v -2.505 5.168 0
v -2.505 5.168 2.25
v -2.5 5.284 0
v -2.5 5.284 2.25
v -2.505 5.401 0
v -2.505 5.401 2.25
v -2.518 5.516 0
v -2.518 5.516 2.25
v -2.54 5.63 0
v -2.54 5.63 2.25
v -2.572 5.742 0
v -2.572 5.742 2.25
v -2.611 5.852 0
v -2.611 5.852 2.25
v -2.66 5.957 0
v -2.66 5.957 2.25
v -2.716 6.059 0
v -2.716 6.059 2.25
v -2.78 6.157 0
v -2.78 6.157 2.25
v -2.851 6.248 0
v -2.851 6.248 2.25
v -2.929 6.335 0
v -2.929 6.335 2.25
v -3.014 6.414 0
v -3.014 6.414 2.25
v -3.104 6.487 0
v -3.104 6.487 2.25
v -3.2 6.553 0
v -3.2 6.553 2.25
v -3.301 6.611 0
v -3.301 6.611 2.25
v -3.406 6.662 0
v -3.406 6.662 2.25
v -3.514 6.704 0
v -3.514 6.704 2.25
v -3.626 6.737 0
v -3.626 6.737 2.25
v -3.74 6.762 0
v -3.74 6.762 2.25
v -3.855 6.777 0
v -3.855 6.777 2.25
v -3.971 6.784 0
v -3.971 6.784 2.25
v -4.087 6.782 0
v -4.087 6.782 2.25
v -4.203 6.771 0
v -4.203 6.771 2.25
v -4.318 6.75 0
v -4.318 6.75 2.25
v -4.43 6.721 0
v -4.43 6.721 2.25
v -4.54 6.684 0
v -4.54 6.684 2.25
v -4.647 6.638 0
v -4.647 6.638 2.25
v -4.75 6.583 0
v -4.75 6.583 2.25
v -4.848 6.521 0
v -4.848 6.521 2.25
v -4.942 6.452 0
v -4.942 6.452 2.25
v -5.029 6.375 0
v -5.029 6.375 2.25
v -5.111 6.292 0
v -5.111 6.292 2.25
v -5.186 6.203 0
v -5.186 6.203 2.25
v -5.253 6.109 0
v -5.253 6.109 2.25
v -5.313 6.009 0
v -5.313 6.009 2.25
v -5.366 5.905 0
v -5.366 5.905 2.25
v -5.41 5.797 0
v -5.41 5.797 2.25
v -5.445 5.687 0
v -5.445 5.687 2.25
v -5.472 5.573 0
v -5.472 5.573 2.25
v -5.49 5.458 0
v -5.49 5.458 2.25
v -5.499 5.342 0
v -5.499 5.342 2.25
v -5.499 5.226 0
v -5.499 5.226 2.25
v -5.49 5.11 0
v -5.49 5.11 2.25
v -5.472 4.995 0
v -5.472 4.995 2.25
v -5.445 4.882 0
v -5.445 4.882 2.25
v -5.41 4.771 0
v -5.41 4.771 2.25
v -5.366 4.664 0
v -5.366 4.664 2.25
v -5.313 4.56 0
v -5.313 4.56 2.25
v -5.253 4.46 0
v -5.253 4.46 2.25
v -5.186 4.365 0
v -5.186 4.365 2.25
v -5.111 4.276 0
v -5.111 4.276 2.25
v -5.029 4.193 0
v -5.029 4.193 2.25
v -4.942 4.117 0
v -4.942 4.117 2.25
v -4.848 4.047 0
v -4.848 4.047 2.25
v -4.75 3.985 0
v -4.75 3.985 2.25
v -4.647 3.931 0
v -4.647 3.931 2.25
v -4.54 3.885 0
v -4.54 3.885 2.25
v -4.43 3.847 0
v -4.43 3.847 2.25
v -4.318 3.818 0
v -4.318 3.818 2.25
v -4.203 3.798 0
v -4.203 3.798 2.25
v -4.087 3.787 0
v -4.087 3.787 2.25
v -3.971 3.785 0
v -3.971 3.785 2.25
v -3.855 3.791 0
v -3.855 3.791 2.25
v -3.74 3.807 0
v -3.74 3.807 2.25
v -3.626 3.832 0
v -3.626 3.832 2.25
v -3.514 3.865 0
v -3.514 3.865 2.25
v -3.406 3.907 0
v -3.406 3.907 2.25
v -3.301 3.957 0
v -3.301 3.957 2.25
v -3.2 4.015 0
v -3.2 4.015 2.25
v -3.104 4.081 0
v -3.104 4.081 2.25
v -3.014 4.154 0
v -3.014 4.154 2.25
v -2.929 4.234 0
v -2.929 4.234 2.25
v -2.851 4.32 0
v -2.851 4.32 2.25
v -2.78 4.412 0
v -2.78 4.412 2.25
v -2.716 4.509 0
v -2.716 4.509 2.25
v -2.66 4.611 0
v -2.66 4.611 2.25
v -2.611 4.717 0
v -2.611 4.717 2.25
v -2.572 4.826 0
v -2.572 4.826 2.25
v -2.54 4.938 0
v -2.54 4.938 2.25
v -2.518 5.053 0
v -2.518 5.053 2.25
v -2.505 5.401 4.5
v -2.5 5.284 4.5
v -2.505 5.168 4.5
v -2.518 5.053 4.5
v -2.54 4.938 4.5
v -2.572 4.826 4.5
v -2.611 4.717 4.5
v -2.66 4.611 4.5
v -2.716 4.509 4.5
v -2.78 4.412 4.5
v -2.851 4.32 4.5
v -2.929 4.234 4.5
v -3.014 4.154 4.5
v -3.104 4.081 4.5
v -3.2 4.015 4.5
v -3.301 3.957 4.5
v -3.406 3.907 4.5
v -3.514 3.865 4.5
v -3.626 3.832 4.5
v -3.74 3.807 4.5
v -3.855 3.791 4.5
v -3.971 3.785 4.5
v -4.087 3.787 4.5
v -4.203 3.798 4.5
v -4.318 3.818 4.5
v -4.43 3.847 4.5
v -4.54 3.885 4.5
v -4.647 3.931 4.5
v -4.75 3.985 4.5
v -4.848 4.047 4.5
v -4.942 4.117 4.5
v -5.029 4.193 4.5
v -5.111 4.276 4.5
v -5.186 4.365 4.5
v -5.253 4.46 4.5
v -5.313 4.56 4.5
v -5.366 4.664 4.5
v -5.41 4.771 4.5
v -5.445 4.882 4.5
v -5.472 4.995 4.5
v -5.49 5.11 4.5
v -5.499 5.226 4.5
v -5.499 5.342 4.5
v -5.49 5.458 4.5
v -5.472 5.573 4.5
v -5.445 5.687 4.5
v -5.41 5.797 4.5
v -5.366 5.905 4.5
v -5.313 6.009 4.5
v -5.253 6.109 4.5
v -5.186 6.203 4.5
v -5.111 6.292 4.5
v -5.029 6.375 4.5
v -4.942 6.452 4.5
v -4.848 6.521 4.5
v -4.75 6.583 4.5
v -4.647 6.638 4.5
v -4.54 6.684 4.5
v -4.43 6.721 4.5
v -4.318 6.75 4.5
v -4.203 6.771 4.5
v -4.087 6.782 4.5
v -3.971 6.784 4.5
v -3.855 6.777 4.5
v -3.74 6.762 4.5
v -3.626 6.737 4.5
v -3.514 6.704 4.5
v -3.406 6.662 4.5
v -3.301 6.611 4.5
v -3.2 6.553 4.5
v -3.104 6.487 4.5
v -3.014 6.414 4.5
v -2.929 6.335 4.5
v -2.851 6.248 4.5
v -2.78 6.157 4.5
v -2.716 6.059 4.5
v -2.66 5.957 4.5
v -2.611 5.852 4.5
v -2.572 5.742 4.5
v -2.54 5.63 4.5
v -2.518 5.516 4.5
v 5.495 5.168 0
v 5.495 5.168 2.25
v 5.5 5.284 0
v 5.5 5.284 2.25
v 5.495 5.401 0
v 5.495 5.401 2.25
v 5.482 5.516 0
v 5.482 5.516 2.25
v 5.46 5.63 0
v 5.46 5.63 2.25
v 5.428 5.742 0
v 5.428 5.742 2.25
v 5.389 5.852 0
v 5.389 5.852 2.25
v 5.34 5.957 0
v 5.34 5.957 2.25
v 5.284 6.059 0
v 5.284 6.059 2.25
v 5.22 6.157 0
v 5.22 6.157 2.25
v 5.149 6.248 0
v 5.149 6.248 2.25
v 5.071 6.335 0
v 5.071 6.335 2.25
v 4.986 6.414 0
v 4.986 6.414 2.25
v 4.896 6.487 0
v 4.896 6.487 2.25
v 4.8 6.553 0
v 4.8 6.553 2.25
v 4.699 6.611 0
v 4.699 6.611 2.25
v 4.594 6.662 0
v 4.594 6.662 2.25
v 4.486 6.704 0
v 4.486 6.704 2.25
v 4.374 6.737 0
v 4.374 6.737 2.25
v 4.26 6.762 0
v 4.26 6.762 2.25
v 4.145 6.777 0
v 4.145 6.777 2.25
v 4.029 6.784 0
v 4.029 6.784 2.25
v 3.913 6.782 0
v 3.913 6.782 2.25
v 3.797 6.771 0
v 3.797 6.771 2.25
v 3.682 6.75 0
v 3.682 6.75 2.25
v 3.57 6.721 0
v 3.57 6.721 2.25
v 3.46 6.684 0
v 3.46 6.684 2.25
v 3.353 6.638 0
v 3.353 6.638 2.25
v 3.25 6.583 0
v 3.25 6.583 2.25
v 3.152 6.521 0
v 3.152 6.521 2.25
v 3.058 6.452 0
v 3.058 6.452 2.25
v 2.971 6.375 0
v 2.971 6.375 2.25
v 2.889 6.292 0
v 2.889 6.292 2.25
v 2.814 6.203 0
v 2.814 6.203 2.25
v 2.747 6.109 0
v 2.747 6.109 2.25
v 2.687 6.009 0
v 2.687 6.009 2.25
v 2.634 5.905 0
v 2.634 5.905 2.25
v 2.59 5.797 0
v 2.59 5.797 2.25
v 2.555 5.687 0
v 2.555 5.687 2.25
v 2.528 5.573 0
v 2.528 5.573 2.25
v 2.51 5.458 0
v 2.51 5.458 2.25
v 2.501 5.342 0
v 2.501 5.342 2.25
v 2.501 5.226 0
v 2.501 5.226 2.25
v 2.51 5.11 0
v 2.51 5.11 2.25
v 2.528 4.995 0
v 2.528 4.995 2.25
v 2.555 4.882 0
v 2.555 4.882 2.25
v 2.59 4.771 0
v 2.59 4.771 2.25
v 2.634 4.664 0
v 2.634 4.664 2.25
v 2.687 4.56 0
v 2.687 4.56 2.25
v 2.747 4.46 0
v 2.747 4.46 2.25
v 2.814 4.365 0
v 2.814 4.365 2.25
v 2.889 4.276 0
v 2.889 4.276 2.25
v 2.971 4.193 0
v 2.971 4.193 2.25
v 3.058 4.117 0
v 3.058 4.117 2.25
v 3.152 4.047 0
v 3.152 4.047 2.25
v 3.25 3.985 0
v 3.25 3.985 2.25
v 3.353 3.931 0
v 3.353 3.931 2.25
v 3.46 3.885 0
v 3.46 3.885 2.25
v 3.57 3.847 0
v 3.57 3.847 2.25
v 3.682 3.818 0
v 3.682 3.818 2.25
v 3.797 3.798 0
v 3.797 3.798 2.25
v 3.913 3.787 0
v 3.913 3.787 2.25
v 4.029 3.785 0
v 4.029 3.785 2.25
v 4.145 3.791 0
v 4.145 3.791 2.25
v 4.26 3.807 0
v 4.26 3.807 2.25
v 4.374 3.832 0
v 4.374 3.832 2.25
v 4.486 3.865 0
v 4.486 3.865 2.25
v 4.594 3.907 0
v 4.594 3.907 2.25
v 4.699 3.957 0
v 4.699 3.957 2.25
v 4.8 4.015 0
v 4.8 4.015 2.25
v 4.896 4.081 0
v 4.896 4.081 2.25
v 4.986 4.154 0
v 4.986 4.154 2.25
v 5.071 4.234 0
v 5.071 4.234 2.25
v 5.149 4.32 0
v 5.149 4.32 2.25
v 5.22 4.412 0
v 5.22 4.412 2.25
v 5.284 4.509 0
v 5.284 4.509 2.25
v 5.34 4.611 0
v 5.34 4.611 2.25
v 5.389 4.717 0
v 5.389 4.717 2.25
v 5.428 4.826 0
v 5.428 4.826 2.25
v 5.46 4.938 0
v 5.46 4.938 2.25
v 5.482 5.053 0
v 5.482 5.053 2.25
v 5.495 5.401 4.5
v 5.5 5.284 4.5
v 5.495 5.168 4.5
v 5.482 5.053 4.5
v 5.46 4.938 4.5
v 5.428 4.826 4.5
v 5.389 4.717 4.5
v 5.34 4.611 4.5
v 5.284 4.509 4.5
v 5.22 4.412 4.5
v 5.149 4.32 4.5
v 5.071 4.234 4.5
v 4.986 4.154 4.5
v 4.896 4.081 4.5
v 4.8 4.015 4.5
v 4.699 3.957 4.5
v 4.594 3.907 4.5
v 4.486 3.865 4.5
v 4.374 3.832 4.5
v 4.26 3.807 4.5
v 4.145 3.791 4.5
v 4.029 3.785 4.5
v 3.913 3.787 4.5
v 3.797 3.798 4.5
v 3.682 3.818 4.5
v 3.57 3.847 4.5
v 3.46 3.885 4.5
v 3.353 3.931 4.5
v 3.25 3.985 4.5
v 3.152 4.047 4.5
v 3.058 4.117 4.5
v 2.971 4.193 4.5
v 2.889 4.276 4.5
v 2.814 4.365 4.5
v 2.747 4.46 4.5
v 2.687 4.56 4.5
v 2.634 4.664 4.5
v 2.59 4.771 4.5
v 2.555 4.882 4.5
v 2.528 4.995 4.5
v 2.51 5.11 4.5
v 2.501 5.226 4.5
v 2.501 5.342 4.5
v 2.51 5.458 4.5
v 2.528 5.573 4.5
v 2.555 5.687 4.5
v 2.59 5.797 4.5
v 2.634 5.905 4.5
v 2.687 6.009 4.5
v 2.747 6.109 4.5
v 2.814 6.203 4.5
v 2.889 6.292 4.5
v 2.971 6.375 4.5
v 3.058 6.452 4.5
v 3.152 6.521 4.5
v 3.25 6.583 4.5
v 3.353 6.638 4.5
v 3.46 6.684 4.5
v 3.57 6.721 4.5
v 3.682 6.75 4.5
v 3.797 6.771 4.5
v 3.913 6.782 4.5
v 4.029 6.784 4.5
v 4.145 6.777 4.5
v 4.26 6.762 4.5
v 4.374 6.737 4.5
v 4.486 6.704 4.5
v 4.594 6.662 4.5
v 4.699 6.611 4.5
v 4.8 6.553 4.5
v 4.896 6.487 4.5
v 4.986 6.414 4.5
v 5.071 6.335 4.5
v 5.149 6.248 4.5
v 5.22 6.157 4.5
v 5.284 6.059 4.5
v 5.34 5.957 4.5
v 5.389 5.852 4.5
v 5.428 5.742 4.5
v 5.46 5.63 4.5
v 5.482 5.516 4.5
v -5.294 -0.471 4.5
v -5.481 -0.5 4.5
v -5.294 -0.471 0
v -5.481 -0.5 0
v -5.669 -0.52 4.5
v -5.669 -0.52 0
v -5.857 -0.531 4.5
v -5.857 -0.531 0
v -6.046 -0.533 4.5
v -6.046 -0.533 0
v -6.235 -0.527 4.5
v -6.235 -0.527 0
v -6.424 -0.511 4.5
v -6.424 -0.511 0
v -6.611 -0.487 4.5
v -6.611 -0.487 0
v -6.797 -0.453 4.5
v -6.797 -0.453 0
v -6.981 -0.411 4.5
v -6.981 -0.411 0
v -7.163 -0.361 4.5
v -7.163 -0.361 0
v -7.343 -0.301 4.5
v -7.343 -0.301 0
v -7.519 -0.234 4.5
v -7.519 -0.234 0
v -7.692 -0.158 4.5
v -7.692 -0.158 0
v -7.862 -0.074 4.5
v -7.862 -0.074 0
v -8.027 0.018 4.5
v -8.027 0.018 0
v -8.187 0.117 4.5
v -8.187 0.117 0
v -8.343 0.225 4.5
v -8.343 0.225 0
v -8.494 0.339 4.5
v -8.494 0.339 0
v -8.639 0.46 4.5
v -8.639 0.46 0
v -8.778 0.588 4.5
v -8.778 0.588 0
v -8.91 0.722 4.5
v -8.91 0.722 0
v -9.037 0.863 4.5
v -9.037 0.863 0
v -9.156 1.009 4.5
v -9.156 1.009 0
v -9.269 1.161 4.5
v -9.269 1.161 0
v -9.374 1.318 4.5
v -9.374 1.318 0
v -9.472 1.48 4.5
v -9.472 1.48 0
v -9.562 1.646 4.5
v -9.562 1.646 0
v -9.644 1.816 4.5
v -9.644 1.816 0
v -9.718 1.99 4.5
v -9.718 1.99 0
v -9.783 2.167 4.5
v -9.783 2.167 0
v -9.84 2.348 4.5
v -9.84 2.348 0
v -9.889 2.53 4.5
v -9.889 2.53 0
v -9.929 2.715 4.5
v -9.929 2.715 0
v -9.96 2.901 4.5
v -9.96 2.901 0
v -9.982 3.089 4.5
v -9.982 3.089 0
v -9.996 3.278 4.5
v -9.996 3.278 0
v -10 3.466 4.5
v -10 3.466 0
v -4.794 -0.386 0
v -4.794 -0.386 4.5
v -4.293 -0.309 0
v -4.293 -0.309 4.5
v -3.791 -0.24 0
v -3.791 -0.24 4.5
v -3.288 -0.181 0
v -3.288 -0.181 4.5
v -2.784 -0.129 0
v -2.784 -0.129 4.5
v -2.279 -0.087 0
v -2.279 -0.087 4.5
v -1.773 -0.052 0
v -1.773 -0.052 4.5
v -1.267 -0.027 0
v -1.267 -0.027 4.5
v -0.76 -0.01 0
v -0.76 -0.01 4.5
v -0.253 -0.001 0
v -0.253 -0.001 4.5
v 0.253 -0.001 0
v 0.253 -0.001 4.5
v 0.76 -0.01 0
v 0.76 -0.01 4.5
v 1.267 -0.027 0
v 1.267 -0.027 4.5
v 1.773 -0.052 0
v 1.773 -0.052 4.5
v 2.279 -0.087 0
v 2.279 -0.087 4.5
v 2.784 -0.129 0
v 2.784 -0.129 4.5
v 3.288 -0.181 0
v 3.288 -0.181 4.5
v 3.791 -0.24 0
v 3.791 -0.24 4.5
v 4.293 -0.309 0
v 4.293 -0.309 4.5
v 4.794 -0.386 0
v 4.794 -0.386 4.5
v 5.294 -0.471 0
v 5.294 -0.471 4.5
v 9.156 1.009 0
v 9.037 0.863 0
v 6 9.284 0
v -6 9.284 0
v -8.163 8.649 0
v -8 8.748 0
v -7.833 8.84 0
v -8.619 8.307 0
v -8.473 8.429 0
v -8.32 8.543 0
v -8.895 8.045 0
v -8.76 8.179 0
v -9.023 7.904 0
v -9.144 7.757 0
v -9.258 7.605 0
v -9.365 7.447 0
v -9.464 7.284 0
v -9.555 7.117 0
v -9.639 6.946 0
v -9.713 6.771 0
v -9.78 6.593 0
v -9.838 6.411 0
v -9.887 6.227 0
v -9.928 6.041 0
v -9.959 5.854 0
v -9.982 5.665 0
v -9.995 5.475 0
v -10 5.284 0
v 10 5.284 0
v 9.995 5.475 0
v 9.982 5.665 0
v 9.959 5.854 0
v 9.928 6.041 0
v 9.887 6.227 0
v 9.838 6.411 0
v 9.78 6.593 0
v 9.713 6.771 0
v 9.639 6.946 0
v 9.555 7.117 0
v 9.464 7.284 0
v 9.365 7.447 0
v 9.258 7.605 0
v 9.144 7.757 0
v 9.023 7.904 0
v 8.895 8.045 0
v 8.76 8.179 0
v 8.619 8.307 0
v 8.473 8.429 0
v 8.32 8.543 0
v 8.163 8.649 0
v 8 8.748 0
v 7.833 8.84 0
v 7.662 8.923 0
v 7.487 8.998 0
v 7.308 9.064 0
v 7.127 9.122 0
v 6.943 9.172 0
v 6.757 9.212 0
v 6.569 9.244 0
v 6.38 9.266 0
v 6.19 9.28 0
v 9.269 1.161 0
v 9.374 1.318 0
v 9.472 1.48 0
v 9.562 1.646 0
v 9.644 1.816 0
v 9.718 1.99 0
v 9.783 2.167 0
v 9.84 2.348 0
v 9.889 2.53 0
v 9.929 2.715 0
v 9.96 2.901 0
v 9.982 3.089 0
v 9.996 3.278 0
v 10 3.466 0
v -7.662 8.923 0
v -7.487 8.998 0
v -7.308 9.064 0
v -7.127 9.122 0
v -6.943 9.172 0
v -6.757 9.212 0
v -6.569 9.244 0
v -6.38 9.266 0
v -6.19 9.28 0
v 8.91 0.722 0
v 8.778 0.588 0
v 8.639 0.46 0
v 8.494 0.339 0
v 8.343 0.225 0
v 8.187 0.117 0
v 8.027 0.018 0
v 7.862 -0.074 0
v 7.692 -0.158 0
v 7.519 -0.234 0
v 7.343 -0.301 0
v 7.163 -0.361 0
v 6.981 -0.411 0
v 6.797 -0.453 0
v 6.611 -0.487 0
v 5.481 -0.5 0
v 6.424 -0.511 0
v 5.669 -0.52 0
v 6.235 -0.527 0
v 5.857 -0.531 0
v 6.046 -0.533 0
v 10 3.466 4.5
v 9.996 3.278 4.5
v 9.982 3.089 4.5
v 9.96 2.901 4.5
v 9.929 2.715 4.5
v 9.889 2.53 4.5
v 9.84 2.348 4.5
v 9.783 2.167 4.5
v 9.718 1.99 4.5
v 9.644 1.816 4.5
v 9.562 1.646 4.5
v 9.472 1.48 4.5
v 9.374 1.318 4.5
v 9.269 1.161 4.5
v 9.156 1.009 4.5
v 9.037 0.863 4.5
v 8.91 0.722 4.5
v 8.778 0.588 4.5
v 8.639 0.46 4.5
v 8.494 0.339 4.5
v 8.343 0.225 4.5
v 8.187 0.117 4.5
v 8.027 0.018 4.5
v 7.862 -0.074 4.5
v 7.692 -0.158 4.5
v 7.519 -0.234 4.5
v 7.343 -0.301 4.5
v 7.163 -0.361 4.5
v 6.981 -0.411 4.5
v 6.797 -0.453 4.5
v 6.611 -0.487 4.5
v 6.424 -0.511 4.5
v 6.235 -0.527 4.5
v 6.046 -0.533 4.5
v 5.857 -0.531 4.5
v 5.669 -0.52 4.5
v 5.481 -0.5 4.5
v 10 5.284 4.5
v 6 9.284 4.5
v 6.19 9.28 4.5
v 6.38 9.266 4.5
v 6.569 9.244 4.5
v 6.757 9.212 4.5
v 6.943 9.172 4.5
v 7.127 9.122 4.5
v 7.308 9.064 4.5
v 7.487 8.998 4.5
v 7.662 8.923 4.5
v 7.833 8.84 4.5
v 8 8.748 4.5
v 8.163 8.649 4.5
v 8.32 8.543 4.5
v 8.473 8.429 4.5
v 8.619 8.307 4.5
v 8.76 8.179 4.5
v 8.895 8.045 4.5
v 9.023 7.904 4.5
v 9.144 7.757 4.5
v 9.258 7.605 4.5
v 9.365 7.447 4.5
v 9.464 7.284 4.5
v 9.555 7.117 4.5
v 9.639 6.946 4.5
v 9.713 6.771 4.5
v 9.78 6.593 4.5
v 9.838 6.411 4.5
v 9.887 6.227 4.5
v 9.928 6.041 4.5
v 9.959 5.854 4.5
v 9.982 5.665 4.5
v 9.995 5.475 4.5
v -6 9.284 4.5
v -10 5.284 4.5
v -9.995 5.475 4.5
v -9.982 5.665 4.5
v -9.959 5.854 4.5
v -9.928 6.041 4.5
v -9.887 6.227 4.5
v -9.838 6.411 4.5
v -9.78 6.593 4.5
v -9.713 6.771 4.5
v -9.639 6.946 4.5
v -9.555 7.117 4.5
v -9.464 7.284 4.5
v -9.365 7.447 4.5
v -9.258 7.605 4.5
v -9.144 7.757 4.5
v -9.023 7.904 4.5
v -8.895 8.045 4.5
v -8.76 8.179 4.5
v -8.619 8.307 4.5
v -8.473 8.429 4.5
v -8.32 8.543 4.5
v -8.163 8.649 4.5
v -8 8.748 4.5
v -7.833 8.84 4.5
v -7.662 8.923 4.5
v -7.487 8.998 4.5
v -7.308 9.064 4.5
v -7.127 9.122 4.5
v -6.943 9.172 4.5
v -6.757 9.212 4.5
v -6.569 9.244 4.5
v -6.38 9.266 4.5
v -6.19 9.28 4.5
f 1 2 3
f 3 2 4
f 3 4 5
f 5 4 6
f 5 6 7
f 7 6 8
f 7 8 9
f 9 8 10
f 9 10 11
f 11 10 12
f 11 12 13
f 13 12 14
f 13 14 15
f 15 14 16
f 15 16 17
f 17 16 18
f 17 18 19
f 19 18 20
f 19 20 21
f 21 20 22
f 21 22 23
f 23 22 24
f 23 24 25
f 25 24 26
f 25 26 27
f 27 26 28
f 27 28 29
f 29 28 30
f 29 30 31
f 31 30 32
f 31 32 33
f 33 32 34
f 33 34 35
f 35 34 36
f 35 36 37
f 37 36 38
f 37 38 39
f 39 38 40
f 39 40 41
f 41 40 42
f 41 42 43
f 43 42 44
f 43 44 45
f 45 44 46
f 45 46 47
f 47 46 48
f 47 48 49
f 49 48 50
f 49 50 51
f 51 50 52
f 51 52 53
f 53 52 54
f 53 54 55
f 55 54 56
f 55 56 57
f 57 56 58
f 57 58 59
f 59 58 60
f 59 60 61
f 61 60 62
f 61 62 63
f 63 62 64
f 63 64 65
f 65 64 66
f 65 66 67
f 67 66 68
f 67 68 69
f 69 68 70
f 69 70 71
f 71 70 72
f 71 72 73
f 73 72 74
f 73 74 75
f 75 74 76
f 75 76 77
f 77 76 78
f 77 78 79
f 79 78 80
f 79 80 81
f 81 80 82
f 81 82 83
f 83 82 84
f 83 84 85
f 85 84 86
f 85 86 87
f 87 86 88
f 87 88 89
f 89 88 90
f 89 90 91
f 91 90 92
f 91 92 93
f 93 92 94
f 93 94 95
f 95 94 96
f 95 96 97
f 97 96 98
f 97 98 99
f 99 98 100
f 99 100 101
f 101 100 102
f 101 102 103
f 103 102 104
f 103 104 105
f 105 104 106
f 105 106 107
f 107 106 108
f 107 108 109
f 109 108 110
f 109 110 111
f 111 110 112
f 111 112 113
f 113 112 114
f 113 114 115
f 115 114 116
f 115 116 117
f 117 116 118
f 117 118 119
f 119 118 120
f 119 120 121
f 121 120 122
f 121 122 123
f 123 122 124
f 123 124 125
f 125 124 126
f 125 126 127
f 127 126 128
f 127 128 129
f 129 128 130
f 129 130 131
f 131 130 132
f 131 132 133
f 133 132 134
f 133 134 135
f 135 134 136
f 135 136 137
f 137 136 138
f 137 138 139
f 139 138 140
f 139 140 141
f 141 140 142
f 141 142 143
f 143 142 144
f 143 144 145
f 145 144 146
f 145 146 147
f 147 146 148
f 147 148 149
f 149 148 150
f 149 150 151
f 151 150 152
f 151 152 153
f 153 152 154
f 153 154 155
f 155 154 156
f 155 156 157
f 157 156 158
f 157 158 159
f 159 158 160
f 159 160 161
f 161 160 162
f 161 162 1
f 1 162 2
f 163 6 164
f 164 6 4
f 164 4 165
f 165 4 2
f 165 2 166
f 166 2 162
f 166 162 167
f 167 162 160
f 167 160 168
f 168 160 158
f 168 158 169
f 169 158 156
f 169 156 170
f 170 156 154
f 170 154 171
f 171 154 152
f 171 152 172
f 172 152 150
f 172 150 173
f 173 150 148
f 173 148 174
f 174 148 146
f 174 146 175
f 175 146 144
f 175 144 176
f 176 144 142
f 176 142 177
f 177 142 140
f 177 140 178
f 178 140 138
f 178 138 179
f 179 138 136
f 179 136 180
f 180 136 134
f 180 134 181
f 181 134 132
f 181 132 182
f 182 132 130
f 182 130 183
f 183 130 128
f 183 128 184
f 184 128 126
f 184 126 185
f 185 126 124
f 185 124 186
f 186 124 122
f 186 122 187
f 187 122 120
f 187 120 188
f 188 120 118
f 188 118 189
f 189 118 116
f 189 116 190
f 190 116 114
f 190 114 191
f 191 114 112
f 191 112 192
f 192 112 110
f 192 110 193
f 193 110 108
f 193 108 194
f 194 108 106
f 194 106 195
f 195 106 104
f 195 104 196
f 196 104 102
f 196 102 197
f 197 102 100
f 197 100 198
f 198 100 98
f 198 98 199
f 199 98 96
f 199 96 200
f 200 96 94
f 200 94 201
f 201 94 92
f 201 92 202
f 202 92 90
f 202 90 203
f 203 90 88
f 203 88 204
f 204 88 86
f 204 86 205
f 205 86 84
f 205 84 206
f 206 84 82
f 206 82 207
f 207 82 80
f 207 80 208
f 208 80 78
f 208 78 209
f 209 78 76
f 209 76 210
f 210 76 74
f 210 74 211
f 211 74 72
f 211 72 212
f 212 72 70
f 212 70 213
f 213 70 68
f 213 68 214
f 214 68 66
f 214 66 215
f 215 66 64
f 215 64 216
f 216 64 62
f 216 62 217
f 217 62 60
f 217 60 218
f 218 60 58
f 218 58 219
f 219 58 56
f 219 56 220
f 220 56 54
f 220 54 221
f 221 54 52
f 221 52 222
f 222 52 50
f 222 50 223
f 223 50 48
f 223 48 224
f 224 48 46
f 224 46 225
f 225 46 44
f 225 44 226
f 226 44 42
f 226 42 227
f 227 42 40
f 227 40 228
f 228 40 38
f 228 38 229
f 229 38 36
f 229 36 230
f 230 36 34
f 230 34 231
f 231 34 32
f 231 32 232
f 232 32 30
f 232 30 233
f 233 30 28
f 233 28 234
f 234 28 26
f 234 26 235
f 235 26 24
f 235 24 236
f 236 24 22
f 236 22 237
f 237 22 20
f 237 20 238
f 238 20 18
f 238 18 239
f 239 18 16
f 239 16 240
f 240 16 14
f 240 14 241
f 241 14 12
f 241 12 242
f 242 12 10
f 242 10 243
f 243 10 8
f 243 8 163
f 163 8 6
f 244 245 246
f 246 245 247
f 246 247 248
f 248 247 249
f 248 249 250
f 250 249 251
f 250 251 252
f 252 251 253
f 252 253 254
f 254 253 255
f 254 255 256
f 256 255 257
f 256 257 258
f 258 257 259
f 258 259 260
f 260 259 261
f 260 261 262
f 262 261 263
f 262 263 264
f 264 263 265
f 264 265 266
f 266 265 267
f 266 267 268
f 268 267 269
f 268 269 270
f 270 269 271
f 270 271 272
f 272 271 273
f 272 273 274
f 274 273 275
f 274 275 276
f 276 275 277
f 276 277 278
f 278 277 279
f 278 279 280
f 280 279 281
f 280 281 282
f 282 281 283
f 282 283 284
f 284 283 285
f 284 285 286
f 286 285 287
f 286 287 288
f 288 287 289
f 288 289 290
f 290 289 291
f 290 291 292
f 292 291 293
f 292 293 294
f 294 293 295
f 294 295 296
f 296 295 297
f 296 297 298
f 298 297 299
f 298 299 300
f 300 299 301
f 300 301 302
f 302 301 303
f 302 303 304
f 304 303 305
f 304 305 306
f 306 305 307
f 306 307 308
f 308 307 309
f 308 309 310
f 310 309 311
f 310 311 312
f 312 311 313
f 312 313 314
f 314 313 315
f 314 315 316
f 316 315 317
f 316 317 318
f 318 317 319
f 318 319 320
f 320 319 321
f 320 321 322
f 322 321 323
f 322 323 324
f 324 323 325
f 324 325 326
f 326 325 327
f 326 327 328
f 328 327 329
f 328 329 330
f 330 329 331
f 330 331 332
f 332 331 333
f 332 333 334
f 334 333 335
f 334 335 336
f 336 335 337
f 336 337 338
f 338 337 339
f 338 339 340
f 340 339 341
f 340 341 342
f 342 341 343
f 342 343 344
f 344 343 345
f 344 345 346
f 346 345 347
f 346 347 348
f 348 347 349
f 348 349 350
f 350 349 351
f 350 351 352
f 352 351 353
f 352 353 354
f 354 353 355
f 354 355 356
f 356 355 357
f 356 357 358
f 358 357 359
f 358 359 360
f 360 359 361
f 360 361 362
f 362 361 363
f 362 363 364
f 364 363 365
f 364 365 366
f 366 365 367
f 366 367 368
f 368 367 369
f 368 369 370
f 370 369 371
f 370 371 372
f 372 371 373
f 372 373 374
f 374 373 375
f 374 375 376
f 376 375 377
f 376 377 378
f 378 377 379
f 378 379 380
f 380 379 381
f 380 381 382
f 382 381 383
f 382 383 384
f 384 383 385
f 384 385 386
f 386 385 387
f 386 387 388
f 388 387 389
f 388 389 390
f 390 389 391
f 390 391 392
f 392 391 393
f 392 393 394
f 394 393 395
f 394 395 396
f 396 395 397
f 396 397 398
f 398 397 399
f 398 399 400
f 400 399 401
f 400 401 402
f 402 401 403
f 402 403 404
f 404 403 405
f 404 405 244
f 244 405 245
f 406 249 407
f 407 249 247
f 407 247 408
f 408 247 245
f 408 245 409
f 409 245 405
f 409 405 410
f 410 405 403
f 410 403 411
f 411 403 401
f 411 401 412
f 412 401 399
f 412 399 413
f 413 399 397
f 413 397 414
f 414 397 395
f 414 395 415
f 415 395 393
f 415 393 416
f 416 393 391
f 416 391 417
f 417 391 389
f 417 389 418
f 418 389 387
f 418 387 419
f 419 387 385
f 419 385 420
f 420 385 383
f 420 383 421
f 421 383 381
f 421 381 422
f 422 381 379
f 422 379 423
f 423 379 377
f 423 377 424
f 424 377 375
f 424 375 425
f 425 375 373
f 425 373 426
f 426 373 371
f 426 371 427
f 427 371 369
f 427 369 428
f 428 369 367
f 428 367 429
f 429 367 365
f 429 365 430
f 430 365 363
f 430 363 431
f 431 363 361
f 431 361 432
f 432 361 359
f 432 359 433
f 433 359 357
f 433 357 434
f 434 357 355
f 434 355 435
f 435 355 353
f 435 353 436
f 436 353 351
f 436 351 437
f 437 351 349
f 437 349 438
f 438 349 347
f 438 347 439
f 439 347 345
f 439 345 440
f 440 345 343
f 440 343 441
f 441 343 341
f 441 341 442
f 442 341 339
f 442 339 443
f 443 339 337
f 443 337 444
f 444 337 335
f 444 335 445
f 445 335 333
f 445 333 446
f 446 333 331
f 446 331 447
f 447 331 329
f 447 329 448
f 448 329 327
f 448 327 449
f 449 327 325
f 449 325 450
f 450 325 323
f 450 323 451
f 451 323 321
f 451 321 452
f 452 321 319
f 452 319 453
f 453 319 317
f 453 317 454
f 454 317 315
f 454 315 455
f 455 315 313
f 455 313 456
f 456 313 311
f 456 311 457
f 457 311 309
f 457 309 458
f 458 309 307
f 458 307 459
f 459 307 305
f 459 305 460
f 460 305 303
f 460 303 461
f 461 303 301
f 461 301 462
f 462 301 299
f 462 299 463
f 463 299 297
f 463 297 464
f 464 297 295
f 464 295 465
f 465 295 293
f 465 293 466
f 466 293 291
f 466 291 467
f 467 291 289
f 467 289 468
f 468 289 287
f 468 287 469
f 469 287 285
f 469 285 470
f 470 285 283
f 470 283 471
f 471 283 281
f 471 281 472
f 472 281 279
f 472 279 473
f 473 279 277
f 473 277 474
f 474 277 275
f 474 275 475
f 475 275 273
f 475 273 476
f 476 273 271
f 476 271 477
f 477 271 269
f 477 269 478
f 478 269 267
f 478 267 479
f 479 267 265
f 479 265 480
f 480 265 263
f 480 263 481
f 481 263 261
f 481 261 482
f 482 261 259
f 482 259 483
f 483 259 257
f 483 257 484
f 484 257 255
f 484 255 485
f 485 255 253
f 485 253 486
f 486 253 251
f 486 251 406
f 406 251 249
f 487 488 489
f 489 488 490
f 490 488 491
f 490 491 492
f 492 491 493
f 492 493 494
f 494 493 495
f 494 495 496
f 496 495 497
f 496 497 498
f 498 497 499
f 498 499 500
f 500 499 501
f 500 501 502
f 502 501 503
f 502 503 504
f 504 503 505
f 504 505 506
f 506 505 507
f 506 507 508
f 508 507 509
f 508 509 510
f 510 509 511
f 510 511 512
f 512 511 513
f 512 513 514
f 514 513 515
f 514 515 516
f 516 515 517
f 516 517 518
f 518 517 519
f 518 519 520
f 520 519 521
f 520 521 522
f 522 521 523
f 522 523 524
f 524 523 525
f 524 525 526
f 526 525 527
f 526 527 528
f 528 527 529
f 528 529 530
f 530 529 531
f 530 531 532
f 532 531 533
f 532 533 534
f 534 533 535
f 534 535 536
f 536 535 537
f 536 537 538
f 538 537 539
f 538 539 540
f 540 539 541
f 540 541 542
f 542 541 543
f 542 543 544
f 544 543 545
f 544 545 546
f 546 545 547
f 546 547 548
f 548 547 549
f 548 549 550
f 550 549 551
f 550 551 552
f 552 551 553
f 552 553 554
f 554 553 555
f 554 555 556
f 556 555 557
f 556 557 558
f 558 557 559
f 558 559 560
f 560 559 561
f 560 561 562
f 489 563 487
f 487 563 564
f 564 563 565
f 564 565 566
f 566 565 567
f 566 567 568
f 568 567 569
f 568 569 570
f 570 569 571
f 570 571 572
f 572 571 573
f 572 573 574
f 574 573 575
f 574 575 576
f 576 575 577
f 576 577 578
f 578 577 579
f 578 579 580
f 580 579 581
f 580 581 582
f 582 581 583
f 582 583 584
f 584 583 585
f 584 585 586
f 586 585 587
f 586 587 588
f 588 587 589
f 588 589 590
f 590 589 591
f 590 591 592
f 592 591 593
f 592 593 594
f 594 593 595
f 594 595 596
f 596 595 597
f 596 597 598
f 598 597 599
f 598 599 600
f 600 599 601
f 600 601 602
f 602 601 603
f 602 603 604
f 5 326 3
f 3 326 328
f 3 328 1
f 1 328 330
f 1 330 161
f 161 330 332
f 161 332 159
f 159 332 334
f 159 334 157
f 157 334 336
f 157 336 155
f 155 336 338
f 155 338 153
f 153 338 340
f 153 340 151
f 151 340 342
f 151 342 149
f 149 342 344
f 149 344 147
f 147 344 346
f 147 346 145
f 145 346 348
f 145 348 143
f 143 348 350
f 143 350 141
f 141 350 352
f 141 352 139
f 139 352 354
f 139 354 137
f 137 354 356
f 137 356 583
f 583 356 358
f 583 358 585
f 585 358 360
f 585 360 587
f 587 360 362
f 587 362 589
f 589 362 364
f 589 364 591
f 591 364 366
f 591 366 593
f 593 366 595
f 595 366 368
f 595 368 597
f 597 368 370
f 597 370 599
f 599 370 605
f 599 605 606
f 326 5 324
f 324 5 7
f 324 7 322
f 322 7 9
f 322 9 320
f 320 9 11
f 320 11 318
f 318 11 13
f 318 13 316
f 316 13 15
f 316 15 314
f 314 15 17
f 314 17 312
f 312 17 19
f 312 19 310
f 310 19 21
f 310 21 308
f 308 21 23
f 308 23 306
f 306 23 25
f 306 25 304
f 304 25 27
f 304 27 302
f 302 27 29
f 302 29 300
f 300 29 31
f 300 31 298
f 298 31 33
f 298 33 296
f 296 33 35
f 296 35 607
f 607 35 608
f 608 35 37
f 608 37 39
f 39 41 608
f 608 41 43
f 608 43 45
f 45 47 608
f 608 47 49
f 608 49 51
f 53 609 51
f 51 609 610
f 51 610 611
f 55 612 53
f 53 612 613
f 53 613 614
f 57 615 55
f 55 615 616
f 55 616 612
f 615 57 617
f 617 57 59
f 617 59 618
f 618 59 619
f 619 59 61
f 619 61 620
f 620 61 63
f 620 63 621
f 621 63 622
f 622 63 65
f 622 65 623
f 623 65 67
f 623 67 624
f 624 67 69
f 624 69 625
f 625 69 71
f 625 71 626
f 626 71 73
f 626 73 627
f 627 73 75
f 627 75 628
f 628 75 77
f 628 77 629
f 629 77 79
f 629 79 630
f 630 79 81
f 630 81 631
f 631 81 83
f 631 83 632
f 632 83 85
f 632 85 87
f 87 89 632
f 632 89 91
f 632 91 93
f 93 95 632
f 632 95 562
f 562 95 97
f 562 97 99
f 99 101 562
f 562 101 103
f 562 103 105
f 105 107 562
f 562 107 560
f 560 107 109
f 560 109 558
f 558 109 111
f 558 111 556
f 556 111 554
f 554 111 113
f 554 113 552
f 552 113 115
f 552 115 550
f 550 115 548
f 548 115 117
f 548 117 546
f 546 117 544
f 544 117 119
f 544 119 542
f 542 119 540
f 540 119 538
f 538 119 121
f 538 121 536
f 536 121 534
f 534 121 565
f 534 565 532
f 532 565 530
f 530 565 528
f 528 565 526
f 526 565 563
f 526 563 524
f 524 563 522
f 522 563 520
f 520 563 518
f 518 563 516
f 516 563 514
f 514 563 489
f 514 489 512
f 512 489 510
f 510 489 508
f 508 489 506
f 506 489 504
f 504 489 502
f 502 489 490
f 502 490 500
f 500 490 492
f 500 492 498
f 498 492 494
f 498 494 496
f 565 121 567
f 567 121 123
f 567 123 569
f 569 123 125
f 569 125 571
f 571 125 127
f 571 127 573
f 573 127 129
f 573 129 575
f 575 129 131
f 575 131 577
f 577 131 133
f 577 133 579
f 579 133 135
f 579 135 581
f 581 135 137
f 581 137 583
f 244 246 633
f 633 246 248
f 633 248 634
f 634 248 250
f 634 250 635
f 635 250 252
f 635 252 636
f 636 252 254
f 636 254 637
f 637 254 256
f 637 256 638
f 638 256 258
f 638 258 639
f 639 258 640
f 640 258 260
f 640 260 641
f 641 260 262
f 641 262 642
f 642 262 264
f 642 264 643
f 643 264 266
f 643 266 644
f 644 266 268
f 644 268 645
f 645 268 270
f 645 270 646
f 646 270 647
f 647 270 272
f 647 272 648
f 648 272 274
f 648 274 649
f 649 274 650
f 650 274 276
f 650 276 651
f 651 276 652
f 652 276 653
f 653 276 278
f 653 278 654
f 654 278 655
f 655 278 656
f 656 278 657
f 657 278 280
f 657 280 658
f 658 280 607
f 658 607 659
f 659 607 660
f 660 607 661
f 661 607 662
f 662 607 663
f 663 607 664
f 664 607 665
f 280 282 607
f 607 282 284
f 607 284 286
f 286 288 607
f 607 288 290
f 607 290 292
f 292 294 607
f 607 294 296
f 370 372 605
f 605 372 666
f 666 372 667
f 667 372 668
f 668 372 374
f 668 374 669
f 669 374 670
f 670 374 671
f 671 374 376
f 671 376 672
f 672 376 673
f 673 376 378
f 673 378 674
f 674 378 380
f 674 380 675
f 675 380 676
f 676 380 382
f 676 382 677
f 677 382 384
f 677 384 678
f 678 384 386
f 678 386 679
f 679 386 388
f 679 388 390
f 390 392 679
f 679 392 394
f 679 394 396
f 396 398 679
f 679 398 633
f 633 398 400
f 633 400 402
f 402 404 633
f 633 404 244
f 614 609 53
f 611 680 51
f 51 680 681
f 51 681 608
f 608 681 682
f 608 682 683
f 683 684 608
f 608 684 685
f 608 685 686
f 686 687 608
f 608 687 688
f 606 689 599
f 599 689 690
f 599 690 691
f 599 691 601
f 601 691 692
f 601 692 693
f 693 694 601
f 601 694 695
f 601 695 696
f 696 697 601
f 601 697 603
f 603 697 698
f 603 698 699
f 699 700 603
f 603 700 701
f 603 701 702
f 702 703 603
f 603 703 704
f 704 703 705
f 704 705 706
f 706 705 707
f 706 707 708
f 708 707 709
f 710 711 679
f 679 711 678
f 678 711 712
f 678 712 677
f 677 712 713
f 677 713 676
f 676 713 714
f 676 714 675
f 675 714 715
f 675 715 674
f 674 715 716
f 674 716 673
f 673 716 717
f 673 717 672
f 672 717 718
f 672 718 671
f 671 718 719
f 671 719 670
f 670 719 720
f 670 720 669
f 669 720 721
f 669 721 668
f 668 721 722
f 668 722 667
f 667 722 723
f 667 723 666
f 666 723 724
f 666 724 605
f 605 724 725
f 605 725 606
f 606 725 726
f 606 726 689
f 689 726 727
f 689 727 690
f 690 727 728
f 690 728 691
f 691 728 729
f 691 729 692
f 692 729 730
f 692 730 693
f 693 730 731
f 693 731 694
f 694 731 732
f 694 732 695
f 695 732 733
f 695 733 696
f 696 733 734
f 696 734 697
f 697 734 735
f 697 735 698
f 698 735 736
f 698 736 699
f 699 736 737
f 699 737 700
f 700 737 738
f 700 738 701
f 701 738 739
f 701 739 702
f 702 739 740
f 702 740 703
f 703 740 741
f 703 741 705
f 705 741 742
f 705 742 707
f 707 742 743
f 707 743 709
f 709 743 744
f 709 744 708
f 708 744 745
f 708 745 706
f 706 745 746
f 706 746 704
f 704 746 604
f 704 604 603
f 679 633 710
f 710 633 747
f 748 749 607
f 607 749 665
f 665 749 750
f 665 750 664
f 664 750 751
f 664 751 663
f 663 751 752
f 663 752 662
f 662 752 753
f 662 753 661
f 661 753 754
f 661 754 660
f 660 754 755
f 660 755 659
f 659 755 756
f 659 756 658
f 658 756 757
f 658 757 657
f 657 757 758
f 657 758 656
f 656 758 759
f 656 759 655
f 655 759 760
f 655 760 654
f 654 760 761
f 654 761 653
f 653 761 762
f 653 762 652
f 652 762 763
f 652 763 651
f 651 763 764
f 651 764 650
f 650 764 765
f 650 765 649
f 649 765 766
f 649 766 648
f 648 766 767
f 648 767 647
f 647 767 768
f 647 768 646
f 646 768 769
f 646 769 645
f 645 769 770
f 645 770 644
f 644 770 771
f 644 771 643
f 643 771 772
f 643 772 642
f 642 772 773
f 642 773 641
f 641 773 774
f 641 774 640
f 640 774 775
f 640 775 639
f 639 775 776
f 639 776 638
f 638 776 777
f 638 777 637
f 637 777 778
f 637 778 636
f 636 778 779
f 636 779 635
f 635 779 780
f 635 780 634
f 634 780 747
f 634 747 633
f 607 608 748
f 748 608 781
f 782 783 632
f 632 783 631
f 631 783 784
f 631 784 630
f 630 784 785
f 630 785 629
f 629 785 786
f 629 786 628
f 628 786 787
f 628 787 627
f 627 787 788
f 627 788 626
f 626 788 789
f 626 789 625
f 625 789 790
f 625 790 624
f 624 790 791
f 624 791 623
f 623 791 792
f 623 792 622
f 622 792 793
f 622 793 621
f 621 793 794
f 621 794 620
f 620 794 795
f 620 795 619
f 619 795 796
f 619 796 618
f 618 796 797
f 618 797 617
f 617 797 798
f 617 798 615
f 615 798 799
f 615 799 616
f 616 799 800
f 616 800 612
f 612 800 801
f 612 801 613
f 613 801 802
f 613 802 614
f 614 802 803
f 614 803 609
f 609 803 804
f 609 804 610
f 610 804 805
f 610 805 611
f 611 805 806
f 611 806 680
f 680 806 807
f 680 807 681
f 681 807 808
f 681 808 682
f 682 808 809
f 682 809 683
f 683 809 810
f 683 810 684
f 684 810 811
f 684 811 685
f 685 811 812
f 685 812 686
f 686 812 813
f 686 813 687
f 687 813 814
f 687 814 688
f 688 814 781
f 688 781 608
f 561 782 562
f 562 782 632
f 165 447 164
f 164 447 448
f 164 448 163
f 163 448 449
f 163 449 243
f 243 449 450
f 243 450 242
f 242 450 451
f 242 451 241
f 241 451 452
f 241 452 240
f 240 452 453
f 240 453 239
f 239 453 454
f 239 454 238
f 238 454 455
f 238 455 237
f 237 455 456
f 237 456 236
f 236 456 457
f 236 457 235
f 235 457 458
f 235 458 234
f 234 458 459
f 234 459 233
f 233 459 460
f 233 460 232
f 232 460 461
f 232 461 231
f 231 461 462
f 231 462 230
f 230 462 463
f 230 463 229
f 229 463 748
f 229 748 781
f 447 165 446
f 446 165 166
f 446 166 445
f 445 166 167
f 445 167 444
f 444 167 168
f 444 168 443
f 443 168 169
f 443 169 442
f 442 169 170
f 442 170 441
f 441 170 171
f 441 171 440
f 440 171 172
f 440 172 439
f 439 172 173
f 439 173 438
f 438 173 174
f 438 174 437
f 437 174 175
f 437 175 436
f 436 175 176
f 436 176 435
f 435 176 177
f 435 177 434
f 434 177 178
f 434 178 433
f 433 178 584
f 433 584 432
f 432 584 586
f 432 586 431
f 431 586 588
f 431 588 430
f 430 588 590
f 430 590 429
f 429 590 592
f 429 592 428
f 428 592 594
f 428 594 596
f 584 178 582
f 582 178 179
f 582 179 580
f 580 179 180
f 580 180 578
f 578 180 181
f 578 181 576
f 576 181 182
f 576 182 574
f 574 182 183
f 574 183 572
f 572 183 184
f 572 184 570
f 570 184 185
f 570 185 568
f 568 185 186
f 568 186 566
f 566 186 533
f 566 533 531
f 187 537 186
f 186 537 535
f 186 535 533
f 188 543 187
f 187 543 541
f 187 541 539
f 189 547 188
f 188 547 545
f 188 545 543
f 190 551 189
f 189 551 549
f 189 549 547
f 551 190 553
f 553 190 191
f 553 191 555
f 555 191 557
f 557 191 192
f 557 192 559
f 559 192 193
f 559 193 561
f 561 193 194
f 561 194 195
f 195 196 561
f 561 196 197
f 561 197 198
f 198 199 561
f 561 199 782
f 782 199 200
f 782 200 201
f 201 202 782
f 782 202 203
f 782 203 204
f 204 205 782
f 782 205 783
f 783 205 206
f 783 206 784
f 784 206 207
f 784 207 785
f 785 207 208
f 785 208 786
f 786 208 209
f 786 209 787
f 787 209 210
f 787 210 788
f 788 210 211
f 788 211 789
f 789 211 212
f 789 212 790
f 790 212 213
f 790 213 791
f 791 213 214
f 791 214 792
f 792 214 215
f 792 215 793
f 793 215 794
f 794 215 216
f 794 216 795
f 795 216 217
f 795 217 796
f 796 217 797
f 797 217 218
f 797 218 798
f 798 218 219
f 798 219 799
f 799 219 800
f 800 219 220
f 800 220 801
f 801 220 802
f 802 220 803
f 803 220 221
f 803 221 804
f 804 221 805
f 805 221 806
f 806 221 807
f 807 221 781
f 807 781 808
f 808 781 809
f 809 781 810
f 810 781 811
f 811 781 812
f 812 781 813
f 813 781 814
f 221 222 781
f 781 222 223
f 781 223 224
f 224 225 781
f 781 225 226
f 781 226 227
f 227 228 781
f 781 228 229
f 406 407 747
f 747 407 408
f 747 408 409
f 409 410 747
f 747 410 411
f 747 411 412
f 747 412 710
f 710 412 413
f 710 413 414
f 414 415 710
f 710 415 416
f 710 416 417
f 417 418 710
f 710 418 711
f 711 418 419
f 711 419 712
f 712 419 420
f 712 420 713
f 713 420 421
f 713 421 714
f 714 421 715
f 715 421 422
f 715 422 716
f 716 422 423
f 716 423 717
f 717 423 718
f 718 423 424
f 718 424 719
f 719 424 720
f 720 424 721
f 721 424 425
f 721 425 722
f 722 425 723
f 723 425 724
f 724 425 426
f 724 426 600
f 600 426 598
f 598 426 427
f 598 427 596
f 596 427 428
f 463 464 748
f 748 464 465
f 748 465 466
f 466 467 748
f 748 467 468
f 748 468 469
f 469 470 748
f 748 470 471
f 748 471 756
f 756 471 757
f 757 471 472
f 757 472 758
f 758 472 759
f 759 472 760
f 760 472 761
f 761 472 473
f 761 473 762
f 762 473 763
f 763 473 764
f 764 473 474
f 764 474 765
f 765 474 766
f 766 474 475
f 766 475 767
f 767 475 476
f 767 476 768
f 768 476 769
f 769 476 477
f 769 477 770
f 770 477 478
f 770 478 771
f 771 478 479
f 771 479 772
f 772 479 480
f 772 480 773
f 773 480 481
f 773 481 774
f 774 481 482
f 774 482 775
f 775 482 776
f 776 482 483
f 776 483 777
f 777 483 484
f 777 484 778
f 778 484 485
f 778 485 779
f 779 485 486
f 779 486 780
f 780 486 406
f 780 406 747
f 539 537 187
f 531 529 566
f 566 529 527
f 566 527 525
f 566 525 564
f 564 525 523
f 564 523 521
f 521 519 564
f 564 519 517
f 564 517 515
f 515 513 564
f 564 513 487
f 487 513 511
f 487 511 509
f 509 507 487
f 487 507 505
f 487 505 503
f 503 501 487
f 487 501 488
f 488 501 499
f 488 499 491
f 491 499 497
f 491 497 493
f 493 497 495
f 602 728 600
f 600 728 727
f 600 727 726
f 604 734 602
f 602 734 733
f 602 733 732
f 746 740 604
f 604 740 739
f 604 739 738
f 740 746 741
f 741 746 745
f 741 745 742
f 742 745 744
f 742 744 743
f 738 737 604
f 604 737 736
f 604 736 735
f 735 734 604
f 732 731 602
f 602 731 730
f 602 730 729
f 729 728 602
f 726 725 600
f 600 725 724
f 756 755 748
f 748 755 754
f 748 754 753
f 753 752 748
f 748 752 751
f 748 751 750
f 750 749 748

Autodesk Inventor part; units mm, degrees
ref_plane "YZ Plane" through (0, 0, 0) normal (1, 0, 0) x (0, 1, 0)
ref_plane "XZ Plane" through (0, 0, 0) normal (0, 1, 0) x (-1, 0, 0)
ref_plane "XY Plane" through (0, 0, 0) normal (0, 0, 1) x (1, 0, 0)
sketch "スケッチ1" plane through (0, 0, 0) normal (0, 0, 1) x (1, 0, 0)
  arc A0 (10, -1.7157) -> (-10, -1.7157) centre (0, -30) ccw
  line L0 (-10, -1.7157) -> (-10, 9.2843)
  line L1 (-10, 9.2843) -> (10, 9.2843)
  line L2 (10, 9.2843) -> (10, -1.7157)
  line L3 (-14, 0) -> (14, 0) projected
  point P0 (0, 0)
  point P1 (0, 0)
  dimension "d0" = 20
  dimension "d1" = 11
  dimension "d2" = 30
extrude "押し出し1" add sketch "スケッチ1" along normal blind 4.5
fillet "フィレット1" radius 4 4 edges at (-10, 9.2843, 2.25) (10, 9.2843, 2.25) (10, -1.7157, 2.25) (-10, -1.7157, 2.25)
sketch "スケッチ2" plane through (0, 0, 4.5) normal (0, 0, 1) x (1, 0, 0)
  circle A0 centre (-4, 5.2843) radius 1.5
  circle A1 centre (4, 5.2843) radius 1.5
  line L0 (6, 9.2843) -> (-6, 9.2843) projected
  point P0 (0, 0)
  dimension "d7" = 3
  dimension "d8" = 3
  dimension "d9" = 4
  dimension "d10" = 4
  dimension "d11" = 4
  dimension "d12" = 4
extrude "押し出し2" cut sketch "スケッチ2" against normal blind 7.5
equation "\"d8\" = d7"
equation "\"d12\" = d11"
properties part number "ruber"
